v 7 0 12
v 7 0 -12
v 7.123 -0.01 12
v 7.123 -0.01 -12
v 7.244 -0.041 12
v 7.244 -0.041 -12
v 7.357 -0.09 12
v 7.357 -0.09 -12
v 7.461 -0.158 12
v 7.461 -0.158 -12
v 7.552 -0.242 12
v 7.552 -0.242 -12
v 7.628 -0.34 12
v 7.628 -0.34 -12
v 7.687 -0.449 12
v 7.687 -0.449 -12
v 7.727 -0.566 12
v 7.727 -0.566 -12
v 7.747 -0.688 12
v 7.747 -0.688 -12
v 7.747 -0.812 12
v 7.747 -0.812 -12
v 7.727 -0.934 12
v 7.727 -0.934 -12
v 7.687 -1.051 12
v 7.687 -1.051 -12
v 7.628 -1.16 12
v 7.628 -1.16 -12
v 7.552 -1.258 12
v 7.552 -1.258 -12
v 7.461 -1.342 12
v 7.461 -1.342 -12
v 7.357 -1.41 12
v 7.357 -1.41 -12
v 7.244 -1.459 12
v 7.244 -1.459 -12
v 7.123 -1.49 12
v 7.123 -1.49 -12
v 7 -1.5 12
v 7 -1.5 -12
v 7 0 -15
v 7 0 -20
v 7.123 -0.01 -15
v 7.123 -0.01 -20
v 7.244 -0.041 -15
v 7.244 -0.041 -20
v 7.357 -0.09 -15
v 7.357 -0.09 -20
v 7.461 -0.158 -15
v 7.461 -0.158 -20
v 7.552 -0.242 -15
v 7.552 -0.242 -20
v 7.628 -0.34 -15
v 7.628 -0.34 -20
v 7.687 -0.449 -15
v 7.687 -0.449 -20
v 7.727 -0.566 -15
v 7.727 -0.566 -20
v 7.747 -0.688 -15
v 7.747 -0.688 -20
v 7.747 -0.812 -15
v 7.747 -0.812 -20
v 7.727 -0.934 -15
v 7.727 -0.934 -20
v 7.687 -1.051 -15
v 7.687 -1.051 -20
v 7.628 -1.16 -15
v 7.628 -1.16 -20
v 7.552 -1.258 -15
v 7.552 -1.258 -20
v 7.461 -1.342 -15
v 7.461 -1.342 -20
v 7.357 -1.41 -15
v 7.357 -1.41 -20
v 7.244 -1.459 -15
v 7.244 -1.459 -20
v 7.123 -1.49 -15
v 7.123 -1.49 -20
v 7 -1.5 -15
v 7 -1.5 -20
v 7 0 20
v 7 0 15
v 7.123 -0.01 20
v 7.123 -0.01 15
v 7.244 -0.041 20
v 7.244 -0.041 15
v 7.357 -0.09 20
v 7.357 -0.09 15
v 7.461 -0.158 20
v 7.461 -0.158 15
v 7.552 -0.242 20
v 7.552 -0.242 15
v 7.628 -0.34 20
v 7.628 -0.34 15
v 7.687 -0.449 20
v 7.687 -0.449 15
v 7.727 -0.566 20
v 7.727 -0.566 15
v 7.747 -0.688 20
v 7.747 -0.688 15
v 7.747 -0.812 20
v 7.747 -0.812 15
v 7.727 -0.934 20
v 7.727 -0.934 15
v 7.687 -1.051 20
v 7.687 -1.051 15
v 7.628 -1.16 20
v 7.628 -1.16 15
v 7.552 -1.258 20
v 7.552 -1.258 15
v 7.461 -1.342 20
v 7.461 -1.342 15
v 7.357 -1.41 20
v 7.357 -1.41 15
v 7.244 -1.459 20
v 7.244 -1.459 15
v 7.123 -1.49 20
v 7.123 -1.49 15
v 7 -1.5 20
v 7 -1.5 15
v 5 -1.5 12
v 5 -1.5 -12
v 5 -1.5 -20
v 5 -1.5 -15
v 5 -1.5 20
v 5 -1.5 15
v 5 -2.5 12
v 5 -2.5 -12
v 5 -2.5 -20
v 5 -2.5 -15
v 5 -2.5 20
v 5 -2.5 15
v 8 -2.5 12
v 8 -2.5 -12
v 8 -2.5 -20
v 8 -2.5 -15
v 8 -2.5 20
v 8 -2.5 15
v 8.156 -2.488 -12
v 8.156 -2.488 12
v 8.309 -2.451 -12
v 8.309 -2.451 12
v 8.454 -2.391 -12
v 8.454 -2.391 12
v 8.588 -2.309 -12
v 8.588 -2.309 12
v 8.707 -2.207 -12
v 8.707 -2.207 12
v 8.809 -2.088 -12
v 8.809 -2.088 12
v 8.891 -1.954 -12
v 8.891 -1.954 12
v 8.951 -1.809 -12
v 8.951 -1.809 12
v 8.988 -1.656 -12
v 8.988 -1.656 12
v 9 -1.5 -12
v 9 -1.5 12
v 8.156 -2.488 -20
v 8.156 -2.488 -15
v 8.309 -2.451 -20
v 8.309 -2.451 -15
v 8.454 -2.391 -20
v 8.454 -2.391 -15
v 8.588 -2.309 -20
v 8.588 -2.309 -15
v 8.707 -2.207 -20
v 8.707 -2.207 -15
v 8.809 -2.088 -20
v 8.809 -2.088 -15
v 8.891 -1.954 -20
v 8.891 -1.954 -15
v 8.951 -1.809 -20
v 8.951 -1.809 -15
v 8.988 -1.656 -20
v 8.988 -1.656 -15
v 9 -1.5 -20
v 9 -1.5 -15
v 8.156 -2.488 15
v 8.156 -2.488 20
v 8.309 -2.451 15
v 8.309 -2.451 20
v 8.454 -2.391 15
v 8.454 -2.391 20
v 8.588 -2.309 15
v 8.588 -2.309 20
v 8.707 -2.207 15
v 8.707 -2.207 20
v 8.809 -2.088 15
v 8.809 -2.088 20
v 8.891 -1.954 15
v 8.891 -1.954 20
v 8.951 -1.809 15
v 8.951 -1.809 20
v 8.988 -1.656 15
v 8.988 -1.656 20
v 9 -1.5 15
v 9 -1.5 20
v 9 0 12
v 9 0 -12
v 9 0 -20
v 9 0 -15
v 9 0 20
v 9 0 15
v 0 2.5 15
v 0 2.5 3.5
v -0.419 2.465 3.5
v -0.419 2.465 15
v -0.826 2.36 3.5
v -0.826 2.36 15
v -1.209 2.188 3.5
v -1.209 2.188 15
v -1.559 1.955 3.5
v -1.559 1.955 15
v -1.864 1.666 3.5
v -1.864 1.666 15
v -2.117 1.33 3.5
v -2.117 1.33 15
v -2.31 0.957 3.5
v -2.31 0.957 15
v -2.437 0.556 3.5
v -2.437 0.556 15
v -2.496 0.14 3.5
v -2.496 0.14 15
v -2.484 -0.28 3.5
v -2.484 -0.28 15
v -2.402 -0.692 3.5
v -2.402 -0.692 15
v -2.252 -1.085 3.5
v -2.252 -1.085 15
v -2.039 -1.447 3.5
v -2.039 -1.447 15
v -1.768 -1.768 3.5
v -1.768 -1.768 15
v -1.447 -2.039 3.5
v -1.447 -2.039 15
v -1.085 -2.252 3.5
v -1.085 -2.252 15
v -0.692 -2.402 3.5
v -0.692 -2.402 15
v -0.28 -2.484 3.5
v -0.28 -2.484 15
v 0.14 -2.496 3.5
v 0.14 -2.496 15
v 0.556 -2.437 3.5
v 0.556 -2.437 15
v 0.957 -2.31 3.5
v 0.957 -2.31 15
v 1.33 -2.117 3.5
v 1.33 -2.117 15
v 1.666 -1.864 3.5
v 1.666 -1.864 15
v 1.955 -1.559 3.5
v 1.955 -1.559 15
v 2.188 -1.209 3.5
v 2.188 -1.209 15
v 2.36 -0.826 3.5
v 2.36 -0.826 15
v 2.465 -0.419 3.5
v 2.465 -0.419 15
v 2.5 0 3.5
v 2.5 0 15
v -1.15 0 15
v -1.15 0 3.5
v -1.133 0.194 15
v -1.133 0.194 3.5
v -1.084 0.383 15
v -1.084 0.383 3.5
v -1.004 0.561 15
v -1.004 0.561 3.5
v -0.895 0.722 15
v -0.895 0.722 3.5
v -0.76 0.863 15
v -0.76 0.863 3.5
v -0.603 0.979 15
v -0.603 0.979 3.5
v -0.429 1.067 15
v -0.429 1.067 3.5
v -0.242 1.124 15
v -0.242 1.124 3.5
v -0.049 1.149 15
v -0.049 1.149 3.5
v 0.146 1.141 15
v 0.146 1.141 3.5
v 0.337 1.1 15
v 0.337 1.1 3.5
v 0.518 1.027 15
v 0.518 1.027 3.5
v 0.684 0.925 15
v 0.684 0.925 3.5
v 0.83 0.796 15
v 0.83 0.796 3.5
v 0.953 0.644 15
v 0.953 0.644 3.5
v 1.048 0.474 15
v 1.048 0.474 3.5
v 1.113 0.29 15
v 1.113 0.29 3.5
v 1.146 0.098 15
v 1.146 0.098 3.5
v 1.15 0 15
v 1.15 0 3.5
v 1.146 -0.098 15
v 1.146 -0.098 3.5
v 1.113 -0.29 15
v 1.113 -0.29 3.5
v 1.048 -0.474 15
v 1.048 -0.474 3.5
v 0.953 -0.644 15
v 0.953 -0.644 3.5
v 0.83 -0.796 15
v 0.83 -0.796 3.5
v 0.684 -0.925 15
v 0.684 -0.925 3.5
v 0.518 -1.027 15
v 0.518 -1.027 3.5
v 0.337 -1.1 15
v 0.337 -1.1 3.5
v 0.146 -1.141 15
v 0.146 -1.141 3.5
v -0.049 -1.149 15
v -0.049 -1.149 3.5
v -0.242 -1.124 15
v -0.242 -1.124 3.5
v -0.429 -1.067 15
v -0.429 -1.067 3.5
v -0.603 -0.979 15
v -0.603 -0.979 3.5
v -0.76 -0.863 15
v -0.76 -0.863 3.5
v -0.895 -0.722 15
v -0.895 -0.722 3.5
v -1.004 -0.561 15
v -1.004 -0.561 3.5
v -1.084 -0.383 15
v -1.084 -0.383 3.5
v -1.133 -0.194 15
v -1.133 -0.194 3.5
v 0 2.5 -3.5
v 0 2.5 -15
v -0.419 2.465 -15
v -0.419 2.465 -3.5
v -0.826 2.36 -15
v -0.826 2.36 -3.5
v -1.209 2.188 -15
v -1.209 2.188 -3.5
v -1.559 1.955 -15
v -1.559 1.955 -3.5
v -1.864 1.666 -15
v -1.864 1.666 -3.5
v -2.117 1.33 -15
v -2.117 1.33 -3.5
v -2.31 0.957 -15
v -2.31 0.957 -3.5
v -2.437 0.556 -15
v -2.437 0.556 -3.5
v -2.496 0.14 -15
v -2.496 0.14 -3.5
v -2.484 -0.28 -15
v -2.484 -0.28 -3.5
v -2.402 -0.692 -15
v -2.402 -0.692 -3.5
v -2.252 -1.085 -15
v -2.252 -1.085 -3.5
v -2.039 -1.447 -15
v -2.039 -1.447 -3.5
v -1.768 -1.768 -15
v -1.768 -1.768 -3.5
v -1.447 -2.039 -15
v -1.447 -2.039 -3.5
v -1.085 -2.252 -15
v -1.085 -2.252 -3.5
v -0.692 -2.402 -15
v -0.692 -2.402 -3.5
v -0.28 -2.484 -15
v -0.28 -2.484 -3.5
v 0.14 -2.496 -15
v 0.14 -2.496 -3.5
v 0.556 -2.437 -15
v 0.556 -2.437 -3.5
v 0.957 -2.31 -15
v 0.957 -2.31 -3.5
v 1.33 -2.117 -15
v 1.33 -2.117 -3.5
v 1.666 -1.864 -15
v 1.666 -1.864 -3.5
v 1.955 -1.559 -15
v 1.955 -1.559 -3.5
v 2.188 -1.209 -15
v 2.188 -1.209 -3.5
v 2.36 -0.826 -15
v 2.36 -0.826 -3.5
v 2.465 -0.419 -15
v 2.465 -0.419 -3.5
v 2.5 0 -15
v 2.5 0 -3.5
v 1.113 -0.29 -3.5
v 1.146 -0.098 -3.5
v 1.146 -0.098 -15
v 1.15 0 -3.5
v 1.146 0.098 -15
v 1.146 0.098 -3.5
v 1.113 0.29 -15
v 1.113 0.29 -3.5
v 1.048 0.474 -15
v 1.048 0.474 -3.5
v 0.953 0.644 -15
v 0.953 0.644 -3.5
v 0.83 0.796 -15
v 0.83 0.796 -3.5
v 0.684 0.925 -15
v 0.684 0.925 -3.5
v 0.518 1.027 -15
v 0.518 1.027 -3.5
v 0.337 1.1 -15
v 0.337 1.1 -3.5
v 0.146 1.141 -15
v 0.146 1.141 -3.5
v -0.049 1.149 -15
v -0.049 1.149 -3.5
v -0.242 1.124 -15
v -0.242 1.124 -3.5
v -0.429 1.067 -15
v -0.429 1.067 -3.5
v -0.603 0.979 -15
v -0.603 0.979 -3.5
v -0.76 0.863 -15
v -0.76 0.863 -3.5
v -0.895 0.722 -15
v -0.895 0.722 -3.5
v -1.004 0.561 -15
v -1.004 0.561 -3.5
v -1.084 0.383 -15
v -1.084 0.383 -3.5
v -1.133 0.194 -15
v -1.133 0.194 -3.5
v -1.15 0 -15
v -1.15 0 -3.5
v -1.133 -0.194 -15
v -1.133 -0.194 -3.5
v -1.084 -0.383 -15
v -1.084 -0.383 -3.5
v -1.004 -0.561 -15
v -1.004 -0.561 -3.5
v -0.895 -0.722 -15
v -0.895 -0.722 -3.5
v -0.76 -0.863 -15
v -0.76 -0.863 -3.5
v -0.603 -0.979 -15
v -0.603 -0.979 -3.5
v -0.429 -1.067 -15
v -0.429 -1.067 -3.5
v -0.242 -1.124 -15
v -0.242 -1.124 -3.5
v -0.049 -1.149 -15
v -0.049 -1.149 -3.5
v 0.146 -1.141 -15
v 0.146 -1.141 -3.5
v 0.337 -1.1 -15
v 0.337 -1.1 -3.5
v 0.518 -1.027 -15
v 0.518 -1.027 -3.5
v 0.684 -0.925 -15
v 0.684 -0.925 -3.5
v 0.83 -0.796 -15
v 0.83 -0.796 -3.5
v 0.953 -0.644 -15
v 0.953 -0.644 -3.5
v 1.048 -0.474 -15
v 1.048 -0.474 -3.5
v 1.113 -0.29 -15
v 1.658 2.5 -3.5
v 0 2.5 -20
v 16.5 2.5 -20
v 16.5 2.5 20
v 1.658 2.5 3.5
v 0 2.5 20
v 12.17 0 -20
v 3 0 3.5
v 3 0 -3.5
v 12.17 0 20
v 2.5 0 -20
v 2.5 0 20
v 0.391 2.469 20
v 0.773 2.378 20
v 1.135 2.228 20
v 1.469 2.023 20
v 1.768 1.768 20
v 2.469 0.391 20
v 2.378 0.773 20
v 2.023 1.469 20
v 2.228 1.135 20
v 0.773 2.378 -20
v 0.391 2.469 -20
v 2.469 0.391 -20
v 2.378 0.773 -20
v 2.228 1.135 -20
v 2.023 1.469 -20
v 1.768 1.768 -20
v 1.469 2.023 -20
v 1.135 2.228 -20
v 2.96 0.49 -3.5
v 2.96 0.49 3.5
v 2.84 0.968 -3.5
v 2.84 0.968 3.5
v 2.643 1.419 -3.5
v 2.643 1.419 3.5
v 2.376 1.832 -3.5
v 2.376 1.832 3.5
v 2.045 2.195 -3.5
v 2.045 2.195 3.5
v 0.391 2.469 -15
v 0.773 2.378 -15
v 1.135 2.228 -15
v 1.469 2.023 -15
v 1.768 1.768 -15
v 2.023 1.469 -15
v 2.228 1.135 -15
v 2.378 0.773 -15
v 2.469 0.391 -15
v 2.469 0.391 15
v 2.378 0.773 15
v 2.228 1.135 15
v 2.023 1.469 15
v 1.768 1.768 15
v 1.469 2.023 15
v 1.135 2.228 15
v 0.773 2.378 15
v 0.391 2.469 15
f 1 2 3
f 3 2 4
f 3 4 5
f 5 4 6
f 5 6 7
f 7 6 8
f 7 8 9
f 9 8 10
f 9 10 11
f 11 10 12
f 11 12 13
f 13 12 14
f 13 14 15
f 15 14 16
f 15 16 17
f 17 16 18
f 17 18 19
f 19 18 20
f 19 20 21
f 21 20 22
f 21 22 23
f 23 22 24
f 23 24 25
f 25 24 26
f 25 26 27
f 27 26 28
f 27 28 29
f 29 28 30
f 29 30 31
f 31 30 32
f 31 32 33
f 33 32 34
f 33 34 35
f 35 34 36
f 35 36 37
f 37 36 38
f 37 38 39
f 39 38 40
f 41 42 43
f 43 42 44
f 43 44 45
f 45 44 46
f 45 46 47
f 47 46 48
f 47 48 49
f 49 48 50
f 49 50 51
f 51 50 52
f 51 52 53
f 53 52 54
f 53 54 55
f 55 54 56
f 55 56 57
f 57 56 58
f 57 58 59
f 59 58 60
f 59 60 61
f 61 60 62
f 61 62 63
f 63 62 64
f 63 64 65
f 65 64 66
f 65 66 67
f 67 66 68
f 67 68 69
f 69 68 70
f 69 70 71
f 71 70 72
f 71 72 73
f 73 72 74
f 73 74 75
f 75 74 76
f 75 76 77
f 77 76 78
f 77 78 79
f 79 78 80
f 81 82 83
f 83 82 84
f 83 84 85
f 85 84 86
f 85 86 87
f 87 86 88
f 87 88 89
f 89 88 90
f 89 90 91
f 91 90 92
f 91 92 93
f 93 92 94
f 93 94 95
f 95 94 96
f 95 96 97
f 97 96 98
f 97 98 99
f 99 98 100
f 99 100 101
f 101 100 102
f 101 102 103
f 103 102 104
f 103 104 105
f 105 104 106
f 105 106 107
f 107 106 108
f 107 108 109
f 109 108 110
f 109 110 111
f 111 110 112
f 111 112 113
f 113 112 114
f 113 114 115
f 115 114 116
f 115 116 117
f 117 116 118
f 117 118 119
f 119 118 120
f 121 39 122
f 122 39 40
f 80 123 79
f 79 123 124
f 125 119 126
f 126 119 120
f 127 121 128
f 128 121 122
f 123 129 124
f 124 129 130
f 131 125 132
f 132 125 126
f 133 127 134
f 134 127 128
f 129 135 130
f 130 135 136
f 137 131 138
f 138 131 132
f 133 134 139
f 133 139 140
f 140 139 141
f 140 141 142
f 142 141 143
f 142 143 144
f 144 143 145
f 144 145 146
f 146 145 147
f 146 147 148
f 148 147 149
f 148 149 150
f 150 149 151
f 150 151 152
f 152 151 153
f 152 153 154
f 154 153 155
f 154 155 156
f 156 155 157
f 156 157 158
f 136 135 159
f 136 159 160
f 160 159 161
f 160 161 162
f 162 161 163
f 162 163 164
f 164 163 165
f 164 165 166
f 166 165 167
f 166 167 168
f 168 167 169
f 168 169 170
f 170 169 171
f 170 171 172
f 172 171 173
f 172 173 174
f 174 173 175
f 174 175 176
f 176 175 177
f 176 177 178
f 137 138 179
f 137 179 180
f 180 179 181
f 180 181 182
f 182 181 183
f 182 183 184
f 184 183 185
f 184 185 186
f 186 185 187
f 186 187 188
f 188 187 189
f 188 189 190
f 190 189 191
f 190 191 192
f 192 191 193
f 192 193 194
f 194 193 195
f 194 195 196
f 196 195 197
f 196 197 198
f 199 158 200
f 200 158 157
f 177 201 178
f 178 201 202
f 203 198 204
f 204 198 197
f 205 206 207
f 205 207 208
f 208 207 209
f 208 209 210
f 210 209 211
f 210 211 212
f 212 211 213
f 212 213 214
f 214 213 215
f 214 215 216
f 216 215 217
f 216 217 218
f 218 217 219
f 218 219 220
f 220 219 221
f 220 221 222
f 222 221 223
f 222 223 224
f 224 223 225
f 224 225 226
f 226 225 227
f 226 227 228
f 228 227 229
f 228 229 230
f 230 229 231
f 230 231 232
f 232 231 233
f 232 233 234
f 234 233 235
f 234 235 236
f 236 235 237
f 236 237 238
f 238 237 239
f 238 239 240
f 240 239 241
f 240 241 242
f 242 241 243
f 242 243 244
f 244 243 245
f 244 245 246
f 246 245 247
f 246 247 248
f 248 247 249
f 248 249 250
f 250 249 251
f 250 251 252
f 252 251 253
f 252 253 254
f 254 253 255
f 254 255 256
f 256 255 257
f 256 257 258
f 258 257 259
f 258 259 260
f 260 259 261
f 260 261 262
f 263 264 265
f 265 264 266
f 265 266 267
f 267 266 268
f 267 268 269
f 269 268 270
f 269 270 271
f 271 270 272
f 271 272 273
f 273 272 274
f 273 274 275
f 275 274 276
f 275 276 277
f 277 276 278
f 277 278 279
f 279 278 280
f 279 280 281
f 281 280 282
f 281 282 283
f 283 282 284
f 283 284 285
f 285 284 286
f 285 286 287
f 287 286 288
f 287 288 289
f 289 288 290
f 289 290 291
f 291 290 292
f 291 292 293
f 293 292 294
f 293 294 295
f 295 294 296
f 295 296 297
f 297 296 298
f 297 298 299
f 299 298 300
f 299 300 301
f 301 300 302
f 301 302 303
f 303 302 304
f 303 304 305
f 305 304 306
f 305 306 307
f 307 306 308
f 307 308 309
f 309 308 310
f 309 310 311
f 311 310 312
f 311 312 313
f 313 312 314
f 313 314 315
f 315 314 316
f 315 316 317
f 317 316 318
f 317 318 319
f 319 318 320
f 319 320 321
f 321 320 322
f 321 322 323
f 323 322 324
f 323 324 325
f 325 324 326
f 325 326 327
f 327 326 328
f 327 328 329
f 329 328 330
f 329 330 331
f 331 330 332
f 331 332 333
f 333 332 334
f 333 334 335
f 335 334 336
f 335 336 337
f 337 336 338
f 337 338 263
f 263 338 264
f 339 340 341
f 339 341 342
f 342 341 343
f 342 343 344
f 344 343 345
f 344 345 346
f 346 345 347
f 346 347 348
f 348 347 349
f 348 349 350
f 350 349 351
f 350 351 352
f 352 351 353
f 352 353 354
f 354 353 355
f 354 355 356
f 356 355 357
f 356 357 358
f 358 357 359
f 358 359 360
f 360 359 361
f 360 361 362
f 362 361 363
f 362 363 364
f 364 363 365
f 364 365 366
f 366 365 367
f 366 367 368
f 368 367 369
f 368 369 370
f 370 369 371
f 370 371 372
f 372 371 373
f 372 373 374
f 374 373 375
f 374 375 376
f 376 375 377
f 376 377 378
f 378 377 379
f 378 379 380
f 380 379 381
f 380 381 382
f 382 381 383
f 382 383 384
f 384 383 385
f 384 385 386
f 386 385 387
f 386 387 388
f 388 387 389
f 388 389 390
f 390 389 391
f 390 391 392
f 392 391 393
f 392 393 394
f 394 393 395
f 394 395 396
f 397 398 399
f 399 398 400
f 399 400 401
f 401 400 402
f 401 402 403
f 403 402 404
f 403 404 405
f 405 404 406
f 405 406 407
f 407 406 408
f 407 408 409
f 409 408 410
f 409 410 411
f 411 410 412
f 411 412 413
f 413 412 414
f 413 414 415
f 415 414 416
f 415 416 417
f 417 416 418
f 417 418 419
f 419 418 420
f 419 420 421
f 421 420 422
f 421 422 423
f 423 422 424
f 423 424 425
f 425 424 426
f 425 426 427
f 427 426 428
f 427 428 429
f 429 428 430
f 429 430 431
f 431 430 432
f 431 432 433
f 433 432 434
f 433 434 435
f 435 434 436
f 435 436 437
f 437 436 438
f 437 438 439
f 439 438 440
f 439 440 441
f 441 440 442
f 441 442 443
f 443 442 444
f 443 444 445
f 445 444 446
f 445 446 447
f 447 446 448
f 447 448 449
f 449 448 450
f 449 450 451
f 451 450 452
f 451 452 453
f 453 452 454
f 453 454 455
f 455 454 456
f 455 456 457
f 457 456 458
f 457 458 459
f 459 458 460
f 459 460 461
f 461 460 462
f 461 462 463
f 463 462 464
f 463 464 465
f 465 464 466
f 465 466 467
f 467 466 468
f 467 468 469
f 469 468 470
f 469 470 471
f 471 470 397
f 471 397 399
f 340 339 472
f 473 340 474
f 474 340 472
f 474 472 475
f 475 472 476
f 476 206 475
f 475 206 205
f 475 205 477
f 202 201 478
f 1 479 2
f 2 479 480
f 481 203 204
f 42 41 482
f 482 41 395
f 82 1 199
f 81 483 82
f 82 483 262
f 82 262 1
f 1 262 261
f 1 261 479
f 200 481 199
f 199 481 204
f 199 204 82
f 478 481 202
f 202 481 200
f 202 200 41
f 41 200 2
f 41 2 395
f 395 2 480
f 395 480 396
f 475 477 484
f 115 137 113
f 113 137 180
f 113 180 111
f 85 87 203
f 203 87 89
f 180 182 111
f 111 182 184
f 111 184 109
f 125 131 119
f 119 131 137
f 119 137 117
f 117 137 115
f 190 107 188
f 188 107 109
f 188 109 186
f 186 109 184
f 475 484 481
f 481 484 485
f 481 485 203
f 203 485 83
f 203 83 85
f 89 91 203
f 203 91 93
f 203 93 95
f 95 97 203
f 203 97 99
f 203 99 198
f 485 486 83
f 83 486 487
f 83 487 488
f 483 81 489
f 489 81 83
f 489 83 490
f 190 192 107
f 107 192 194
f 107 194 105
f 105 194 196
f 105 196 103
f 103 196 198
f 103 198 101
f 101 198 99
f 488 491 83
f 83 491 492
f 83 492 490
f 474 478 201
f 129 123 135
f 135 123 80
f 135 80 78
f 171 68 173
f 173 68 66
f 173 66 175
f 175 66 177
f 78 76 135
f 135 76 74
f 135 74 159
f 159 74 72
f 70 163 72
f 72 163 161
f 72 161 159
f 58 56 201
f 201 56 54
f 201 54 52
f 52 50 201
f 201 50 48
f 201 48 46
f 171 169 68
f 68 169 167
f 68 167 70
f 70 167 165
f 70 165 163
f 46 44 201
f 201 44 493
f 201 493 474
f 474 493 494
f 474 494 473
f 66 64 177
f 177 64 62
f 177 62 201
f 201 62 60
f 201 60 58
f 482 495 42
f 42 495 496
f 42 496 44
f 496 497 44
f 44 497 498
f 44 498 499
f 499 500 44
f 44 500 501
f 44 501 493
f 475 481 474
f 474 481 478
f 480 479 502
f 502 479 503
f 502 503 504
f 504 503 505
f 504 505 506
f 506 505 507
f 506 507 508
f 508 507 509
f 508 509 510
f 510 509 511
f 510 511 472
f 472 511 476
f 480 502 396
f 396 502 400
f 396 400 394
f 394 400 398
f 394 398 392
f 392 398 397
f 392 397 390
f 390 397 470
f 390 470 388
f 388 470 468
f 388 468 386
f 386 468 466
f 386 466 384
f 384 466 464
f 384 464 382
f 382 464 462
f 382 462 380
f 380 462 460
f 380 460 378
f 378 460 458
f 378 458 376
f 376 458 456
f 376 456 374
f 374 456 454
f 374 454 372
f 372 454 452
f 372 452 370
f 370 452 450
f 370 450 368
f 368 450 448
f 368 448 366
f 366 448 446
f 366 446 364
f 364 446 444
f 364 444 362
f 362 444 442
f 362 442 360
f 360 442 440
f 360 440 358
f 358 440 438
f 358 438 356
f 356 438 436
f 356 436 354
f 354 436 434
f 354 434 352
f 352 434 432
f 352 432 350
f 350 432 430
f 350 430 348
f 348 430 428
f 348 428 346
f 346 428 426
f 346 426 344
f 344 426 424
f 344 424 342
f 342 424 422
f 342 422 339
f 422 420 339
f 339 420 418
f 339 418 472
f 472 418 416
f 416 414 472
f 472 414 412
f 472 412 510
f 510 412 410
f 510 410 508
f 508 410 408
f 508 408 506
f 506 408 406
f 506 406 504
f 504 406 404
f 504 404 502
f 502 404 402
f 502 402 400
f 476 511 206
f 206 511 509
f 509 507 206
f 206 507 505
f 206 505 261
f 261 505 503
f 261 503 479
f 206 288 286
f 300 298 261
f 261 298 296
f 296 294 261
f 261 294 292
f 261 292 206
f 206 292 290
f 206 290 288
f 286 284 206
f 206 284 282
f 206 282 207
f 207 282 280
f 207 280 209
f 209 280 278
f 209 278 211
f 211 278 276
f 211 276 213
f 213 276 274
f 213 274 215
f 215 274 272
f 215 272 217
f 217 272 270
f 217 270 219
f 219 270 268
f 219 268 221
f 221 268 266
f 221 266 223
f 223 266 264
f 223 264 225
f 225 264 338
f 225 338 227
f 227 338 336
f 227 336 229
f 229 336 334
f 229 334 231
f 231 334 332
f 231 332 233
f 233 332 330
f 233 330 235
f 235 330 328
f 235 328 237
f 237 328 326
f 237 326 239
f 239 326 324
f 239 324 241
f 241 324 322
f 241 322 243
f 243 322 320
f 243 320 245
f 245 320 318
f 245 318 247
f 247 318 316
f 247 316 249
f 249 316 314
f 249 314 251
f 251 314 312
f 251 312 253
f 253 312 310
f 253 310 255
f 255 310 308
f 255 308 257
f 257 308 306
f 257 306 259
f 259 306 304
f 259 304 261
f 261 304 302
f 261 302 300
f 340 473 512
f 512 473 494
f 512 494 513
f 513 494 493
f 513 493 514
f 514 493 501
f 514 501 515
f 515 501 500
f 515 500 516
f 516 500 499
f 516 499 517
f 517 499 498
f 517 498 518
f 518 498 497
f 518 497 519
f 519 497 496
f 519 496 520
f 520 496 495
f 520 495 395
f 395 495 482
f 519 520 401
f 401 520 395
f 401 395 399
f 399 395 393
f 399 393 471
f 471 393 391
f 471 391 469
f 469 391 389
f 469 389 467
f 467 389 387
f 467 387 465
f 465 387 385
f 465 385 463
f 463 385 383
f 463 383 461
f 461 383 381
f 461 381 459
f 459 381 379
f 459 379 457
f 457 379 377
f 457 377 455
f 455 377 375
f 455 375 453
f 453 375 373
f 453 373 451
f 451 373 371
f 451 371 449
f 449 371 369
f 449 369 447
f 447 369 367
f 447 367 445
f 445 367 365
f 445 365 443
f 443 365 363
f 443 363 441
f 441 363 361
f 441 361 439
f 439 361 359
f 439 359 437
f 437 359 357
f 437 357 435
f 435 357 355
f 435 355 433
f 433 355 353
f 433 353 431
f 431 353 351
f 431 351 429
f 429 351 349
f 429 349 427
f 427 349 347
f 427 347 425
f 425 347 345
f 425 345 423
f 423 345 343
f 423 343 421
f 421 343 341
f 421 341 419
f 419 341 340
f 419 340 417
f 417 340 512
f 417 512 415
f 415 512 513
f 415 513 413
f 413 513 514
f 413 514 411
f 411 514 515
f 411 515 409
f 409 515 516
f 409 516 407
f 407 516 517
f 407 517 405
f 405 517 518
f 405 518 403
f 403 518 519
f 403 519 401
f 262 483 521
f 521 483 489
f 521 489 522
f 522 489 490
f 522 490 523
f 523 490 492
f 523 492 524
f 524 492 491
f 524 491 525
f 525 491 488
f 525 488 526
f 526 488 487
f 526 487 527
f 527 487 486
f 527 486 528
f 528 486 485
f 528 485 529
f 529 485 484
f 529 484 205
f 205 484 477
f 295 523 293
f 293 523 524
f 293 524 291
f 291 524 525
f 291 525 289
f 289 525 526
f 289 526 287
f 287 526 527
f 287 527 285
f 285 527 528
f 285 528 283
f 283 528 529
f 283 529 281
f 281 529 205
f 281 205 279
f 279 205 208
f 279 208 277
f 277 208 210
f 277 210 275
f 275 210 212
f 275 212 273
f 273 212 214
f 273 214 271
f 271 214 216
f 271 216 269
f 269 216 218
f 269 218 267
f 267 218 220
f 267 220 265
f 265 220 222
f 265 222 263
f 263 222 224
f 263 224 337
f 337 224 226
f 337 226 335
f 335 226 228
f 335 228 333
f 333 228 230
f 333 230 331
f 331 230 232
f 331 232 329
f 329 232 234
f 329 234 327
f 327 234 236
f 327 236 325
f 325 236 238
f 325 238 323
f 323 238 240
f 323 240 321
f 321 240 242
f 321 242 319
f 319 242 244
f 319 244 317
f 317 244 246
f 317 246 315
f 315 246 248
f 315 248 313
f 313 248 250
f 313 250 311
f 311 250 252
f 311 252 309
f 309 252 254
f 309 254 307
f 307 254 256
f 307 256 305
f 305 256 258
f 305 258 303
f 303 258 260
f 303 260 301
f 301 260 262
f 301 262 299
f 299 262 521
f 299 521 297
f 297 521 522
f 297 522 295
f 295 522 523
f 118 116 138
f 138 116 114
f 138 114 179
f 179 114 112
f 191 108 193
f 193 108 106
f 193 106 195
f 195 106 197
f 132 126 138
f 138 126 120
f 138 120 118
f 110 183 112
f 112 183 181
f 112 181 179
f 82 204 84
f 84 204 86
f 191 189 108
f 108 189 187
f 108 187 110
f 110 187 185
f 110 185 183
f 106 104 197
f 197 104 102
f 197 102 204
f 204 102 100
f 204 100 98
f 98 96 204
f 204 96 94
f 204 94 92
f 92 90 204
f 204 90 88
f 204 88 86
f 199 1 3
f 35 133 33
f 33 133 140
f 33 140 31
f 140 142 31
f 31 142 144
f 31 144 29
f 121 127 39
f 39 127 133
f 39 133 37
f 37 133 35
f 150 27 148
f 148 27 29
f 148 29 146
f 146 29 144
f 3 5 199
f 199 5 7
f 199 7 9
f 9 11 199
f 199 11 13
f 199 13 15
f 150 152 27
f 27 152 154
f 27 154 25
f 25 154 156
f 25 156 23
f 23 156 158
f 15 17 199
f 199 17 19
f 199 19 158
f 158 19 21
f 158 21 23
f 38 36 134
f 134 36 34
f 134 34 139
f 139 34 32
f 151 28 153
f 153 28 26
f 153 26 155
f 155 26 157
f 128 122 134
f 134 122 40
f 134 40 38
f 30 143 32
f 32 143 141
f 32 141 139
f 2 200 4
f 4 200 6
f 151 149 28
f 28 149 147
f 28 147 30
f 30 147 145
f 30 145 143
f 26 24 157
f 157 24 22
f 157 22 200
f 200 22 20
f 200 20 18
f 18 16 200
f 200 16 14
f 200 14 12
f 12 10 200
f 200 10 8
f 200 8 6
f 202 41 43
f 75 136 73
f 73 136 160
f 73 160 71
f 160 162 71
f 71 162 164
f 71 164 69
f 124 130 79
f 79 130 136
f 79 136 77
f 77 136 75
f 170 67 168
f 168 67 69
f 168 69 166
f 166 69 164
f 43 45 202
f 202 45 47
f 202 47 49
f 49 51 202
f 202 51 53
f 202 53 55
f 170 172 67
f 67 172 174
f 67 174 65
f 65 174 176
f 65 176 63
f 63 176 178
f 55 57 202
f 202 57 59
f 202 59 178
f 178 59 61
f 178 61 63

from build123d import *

# Parameters (mm, degrees)
SKETCH_1_R          = 1.15
EXTRUDE_1_DEPTH     = 20
EXTRUDE_2_DEPTH     = 20
SKETCH_5_R          = 3
CUT_EXTRUDE_2_DEPTH = 3.5
CUT_EXTRUDE_START   = -5
SKETCH_6_R          = 2.5
CUT_EXTRUDE_3_DEPTH = 5
SKETCH_7_R          = 2.5
CUT_EXTRUDE_4_DEPTH = 5
SKETCH_10_W         = 9.669872981
SKETCH_10_H         = 3
CUT_EXTRUDE_5_DEPTH = 3


with BuildPart() as part:
    # 草图1 → 凸台-拉伸1 (new, symmetric)
    with BuildSketch(Plane.XY):
        with BuildLine():
            Line((2.5, 0), (12.169872981, 0))
            Line((12.169872981, 0), (16.5, 2.5))
            Line((16.5, 2.5), (0, 2.5))
            ThreePointArc((0, 2.5), (-1.767766953, -1.767766953), (2.5, 0))
        make_face()
        Circle(SKETCH_1_R, mode=Mode.SUBTRACT)
    extrude(amount=EXTRUDE_1_DEPTH, both=True)

    # 草图4 → 凸台-拉伸2 (add, symmetric)
    with BuildSketch(Plane.XY):
        with BuildLine():
            Line((7, -1.5), (5, -1.5))
            Line((5, -1.5), (5, -2.5))
            Line((5, -2.5), (8, -2.5))
            ThreePointArc((8, -2.5), (8.707106781, -2.207106781), (9, -1.5))
            Line((9, -1.5), (9, 0))
            Line((9, 0), (7, 0))
            ThreePointArc((7, 0), (7.75, -0.75), (7, -1.5))
        make_face()
    extrude(amount=EXTRUDE_2_DEPTH, both=True)

    # 草图5 → 切除-拉伸2 (cut, symmetric)
    with BuildSketch(Plane.XY):
        Circle(SKETCH_5_R)
    extrude(amount=CUT_EXTRUDE_2_DEPTH, both=True, mode=Mode.SUBTRACT)

    # 草图6 → 切除-拉伸3 (cut)
    with BuildSketch(Plane(origin=(0, 0, -20), x_dir=(-1, 0, 0), z_dir=(0, 0, -1)).offset(CUT_EXTRUDE_START)):
        Circle(SKETCH_6_R)
    extrude(amount=CUT_EXTRUDE_3_DEPTH, mode=Mode.SUBTRACT)

    # 草图7 → 切除-拉伸4 (cut)
    with BuildSketch(Plane.XY.offset(20)):
        Circle(SKETCH_7_R)
    extrude(amount=-CUT_EXTRUDE_4_DEPTH, mode=Mode.SUBTRACT)

    # 草图10 → 切除-拉伸5 (cut)
    with BuildSketch(Plane.XZ):
        with Locations((7.334936491, -13.5)):
            Rectangle(SKETCH_10_W, SKETCH_10_H)
        with Locations((7.334936491, 13.5)):
            Rectangle(SKETCH_10_W, SKETCH_10_H)
    extrude(amount=CUT_EXTRUDE_5_DEPTH, mode=Mode.SUBTRACT)


solid = part.part
